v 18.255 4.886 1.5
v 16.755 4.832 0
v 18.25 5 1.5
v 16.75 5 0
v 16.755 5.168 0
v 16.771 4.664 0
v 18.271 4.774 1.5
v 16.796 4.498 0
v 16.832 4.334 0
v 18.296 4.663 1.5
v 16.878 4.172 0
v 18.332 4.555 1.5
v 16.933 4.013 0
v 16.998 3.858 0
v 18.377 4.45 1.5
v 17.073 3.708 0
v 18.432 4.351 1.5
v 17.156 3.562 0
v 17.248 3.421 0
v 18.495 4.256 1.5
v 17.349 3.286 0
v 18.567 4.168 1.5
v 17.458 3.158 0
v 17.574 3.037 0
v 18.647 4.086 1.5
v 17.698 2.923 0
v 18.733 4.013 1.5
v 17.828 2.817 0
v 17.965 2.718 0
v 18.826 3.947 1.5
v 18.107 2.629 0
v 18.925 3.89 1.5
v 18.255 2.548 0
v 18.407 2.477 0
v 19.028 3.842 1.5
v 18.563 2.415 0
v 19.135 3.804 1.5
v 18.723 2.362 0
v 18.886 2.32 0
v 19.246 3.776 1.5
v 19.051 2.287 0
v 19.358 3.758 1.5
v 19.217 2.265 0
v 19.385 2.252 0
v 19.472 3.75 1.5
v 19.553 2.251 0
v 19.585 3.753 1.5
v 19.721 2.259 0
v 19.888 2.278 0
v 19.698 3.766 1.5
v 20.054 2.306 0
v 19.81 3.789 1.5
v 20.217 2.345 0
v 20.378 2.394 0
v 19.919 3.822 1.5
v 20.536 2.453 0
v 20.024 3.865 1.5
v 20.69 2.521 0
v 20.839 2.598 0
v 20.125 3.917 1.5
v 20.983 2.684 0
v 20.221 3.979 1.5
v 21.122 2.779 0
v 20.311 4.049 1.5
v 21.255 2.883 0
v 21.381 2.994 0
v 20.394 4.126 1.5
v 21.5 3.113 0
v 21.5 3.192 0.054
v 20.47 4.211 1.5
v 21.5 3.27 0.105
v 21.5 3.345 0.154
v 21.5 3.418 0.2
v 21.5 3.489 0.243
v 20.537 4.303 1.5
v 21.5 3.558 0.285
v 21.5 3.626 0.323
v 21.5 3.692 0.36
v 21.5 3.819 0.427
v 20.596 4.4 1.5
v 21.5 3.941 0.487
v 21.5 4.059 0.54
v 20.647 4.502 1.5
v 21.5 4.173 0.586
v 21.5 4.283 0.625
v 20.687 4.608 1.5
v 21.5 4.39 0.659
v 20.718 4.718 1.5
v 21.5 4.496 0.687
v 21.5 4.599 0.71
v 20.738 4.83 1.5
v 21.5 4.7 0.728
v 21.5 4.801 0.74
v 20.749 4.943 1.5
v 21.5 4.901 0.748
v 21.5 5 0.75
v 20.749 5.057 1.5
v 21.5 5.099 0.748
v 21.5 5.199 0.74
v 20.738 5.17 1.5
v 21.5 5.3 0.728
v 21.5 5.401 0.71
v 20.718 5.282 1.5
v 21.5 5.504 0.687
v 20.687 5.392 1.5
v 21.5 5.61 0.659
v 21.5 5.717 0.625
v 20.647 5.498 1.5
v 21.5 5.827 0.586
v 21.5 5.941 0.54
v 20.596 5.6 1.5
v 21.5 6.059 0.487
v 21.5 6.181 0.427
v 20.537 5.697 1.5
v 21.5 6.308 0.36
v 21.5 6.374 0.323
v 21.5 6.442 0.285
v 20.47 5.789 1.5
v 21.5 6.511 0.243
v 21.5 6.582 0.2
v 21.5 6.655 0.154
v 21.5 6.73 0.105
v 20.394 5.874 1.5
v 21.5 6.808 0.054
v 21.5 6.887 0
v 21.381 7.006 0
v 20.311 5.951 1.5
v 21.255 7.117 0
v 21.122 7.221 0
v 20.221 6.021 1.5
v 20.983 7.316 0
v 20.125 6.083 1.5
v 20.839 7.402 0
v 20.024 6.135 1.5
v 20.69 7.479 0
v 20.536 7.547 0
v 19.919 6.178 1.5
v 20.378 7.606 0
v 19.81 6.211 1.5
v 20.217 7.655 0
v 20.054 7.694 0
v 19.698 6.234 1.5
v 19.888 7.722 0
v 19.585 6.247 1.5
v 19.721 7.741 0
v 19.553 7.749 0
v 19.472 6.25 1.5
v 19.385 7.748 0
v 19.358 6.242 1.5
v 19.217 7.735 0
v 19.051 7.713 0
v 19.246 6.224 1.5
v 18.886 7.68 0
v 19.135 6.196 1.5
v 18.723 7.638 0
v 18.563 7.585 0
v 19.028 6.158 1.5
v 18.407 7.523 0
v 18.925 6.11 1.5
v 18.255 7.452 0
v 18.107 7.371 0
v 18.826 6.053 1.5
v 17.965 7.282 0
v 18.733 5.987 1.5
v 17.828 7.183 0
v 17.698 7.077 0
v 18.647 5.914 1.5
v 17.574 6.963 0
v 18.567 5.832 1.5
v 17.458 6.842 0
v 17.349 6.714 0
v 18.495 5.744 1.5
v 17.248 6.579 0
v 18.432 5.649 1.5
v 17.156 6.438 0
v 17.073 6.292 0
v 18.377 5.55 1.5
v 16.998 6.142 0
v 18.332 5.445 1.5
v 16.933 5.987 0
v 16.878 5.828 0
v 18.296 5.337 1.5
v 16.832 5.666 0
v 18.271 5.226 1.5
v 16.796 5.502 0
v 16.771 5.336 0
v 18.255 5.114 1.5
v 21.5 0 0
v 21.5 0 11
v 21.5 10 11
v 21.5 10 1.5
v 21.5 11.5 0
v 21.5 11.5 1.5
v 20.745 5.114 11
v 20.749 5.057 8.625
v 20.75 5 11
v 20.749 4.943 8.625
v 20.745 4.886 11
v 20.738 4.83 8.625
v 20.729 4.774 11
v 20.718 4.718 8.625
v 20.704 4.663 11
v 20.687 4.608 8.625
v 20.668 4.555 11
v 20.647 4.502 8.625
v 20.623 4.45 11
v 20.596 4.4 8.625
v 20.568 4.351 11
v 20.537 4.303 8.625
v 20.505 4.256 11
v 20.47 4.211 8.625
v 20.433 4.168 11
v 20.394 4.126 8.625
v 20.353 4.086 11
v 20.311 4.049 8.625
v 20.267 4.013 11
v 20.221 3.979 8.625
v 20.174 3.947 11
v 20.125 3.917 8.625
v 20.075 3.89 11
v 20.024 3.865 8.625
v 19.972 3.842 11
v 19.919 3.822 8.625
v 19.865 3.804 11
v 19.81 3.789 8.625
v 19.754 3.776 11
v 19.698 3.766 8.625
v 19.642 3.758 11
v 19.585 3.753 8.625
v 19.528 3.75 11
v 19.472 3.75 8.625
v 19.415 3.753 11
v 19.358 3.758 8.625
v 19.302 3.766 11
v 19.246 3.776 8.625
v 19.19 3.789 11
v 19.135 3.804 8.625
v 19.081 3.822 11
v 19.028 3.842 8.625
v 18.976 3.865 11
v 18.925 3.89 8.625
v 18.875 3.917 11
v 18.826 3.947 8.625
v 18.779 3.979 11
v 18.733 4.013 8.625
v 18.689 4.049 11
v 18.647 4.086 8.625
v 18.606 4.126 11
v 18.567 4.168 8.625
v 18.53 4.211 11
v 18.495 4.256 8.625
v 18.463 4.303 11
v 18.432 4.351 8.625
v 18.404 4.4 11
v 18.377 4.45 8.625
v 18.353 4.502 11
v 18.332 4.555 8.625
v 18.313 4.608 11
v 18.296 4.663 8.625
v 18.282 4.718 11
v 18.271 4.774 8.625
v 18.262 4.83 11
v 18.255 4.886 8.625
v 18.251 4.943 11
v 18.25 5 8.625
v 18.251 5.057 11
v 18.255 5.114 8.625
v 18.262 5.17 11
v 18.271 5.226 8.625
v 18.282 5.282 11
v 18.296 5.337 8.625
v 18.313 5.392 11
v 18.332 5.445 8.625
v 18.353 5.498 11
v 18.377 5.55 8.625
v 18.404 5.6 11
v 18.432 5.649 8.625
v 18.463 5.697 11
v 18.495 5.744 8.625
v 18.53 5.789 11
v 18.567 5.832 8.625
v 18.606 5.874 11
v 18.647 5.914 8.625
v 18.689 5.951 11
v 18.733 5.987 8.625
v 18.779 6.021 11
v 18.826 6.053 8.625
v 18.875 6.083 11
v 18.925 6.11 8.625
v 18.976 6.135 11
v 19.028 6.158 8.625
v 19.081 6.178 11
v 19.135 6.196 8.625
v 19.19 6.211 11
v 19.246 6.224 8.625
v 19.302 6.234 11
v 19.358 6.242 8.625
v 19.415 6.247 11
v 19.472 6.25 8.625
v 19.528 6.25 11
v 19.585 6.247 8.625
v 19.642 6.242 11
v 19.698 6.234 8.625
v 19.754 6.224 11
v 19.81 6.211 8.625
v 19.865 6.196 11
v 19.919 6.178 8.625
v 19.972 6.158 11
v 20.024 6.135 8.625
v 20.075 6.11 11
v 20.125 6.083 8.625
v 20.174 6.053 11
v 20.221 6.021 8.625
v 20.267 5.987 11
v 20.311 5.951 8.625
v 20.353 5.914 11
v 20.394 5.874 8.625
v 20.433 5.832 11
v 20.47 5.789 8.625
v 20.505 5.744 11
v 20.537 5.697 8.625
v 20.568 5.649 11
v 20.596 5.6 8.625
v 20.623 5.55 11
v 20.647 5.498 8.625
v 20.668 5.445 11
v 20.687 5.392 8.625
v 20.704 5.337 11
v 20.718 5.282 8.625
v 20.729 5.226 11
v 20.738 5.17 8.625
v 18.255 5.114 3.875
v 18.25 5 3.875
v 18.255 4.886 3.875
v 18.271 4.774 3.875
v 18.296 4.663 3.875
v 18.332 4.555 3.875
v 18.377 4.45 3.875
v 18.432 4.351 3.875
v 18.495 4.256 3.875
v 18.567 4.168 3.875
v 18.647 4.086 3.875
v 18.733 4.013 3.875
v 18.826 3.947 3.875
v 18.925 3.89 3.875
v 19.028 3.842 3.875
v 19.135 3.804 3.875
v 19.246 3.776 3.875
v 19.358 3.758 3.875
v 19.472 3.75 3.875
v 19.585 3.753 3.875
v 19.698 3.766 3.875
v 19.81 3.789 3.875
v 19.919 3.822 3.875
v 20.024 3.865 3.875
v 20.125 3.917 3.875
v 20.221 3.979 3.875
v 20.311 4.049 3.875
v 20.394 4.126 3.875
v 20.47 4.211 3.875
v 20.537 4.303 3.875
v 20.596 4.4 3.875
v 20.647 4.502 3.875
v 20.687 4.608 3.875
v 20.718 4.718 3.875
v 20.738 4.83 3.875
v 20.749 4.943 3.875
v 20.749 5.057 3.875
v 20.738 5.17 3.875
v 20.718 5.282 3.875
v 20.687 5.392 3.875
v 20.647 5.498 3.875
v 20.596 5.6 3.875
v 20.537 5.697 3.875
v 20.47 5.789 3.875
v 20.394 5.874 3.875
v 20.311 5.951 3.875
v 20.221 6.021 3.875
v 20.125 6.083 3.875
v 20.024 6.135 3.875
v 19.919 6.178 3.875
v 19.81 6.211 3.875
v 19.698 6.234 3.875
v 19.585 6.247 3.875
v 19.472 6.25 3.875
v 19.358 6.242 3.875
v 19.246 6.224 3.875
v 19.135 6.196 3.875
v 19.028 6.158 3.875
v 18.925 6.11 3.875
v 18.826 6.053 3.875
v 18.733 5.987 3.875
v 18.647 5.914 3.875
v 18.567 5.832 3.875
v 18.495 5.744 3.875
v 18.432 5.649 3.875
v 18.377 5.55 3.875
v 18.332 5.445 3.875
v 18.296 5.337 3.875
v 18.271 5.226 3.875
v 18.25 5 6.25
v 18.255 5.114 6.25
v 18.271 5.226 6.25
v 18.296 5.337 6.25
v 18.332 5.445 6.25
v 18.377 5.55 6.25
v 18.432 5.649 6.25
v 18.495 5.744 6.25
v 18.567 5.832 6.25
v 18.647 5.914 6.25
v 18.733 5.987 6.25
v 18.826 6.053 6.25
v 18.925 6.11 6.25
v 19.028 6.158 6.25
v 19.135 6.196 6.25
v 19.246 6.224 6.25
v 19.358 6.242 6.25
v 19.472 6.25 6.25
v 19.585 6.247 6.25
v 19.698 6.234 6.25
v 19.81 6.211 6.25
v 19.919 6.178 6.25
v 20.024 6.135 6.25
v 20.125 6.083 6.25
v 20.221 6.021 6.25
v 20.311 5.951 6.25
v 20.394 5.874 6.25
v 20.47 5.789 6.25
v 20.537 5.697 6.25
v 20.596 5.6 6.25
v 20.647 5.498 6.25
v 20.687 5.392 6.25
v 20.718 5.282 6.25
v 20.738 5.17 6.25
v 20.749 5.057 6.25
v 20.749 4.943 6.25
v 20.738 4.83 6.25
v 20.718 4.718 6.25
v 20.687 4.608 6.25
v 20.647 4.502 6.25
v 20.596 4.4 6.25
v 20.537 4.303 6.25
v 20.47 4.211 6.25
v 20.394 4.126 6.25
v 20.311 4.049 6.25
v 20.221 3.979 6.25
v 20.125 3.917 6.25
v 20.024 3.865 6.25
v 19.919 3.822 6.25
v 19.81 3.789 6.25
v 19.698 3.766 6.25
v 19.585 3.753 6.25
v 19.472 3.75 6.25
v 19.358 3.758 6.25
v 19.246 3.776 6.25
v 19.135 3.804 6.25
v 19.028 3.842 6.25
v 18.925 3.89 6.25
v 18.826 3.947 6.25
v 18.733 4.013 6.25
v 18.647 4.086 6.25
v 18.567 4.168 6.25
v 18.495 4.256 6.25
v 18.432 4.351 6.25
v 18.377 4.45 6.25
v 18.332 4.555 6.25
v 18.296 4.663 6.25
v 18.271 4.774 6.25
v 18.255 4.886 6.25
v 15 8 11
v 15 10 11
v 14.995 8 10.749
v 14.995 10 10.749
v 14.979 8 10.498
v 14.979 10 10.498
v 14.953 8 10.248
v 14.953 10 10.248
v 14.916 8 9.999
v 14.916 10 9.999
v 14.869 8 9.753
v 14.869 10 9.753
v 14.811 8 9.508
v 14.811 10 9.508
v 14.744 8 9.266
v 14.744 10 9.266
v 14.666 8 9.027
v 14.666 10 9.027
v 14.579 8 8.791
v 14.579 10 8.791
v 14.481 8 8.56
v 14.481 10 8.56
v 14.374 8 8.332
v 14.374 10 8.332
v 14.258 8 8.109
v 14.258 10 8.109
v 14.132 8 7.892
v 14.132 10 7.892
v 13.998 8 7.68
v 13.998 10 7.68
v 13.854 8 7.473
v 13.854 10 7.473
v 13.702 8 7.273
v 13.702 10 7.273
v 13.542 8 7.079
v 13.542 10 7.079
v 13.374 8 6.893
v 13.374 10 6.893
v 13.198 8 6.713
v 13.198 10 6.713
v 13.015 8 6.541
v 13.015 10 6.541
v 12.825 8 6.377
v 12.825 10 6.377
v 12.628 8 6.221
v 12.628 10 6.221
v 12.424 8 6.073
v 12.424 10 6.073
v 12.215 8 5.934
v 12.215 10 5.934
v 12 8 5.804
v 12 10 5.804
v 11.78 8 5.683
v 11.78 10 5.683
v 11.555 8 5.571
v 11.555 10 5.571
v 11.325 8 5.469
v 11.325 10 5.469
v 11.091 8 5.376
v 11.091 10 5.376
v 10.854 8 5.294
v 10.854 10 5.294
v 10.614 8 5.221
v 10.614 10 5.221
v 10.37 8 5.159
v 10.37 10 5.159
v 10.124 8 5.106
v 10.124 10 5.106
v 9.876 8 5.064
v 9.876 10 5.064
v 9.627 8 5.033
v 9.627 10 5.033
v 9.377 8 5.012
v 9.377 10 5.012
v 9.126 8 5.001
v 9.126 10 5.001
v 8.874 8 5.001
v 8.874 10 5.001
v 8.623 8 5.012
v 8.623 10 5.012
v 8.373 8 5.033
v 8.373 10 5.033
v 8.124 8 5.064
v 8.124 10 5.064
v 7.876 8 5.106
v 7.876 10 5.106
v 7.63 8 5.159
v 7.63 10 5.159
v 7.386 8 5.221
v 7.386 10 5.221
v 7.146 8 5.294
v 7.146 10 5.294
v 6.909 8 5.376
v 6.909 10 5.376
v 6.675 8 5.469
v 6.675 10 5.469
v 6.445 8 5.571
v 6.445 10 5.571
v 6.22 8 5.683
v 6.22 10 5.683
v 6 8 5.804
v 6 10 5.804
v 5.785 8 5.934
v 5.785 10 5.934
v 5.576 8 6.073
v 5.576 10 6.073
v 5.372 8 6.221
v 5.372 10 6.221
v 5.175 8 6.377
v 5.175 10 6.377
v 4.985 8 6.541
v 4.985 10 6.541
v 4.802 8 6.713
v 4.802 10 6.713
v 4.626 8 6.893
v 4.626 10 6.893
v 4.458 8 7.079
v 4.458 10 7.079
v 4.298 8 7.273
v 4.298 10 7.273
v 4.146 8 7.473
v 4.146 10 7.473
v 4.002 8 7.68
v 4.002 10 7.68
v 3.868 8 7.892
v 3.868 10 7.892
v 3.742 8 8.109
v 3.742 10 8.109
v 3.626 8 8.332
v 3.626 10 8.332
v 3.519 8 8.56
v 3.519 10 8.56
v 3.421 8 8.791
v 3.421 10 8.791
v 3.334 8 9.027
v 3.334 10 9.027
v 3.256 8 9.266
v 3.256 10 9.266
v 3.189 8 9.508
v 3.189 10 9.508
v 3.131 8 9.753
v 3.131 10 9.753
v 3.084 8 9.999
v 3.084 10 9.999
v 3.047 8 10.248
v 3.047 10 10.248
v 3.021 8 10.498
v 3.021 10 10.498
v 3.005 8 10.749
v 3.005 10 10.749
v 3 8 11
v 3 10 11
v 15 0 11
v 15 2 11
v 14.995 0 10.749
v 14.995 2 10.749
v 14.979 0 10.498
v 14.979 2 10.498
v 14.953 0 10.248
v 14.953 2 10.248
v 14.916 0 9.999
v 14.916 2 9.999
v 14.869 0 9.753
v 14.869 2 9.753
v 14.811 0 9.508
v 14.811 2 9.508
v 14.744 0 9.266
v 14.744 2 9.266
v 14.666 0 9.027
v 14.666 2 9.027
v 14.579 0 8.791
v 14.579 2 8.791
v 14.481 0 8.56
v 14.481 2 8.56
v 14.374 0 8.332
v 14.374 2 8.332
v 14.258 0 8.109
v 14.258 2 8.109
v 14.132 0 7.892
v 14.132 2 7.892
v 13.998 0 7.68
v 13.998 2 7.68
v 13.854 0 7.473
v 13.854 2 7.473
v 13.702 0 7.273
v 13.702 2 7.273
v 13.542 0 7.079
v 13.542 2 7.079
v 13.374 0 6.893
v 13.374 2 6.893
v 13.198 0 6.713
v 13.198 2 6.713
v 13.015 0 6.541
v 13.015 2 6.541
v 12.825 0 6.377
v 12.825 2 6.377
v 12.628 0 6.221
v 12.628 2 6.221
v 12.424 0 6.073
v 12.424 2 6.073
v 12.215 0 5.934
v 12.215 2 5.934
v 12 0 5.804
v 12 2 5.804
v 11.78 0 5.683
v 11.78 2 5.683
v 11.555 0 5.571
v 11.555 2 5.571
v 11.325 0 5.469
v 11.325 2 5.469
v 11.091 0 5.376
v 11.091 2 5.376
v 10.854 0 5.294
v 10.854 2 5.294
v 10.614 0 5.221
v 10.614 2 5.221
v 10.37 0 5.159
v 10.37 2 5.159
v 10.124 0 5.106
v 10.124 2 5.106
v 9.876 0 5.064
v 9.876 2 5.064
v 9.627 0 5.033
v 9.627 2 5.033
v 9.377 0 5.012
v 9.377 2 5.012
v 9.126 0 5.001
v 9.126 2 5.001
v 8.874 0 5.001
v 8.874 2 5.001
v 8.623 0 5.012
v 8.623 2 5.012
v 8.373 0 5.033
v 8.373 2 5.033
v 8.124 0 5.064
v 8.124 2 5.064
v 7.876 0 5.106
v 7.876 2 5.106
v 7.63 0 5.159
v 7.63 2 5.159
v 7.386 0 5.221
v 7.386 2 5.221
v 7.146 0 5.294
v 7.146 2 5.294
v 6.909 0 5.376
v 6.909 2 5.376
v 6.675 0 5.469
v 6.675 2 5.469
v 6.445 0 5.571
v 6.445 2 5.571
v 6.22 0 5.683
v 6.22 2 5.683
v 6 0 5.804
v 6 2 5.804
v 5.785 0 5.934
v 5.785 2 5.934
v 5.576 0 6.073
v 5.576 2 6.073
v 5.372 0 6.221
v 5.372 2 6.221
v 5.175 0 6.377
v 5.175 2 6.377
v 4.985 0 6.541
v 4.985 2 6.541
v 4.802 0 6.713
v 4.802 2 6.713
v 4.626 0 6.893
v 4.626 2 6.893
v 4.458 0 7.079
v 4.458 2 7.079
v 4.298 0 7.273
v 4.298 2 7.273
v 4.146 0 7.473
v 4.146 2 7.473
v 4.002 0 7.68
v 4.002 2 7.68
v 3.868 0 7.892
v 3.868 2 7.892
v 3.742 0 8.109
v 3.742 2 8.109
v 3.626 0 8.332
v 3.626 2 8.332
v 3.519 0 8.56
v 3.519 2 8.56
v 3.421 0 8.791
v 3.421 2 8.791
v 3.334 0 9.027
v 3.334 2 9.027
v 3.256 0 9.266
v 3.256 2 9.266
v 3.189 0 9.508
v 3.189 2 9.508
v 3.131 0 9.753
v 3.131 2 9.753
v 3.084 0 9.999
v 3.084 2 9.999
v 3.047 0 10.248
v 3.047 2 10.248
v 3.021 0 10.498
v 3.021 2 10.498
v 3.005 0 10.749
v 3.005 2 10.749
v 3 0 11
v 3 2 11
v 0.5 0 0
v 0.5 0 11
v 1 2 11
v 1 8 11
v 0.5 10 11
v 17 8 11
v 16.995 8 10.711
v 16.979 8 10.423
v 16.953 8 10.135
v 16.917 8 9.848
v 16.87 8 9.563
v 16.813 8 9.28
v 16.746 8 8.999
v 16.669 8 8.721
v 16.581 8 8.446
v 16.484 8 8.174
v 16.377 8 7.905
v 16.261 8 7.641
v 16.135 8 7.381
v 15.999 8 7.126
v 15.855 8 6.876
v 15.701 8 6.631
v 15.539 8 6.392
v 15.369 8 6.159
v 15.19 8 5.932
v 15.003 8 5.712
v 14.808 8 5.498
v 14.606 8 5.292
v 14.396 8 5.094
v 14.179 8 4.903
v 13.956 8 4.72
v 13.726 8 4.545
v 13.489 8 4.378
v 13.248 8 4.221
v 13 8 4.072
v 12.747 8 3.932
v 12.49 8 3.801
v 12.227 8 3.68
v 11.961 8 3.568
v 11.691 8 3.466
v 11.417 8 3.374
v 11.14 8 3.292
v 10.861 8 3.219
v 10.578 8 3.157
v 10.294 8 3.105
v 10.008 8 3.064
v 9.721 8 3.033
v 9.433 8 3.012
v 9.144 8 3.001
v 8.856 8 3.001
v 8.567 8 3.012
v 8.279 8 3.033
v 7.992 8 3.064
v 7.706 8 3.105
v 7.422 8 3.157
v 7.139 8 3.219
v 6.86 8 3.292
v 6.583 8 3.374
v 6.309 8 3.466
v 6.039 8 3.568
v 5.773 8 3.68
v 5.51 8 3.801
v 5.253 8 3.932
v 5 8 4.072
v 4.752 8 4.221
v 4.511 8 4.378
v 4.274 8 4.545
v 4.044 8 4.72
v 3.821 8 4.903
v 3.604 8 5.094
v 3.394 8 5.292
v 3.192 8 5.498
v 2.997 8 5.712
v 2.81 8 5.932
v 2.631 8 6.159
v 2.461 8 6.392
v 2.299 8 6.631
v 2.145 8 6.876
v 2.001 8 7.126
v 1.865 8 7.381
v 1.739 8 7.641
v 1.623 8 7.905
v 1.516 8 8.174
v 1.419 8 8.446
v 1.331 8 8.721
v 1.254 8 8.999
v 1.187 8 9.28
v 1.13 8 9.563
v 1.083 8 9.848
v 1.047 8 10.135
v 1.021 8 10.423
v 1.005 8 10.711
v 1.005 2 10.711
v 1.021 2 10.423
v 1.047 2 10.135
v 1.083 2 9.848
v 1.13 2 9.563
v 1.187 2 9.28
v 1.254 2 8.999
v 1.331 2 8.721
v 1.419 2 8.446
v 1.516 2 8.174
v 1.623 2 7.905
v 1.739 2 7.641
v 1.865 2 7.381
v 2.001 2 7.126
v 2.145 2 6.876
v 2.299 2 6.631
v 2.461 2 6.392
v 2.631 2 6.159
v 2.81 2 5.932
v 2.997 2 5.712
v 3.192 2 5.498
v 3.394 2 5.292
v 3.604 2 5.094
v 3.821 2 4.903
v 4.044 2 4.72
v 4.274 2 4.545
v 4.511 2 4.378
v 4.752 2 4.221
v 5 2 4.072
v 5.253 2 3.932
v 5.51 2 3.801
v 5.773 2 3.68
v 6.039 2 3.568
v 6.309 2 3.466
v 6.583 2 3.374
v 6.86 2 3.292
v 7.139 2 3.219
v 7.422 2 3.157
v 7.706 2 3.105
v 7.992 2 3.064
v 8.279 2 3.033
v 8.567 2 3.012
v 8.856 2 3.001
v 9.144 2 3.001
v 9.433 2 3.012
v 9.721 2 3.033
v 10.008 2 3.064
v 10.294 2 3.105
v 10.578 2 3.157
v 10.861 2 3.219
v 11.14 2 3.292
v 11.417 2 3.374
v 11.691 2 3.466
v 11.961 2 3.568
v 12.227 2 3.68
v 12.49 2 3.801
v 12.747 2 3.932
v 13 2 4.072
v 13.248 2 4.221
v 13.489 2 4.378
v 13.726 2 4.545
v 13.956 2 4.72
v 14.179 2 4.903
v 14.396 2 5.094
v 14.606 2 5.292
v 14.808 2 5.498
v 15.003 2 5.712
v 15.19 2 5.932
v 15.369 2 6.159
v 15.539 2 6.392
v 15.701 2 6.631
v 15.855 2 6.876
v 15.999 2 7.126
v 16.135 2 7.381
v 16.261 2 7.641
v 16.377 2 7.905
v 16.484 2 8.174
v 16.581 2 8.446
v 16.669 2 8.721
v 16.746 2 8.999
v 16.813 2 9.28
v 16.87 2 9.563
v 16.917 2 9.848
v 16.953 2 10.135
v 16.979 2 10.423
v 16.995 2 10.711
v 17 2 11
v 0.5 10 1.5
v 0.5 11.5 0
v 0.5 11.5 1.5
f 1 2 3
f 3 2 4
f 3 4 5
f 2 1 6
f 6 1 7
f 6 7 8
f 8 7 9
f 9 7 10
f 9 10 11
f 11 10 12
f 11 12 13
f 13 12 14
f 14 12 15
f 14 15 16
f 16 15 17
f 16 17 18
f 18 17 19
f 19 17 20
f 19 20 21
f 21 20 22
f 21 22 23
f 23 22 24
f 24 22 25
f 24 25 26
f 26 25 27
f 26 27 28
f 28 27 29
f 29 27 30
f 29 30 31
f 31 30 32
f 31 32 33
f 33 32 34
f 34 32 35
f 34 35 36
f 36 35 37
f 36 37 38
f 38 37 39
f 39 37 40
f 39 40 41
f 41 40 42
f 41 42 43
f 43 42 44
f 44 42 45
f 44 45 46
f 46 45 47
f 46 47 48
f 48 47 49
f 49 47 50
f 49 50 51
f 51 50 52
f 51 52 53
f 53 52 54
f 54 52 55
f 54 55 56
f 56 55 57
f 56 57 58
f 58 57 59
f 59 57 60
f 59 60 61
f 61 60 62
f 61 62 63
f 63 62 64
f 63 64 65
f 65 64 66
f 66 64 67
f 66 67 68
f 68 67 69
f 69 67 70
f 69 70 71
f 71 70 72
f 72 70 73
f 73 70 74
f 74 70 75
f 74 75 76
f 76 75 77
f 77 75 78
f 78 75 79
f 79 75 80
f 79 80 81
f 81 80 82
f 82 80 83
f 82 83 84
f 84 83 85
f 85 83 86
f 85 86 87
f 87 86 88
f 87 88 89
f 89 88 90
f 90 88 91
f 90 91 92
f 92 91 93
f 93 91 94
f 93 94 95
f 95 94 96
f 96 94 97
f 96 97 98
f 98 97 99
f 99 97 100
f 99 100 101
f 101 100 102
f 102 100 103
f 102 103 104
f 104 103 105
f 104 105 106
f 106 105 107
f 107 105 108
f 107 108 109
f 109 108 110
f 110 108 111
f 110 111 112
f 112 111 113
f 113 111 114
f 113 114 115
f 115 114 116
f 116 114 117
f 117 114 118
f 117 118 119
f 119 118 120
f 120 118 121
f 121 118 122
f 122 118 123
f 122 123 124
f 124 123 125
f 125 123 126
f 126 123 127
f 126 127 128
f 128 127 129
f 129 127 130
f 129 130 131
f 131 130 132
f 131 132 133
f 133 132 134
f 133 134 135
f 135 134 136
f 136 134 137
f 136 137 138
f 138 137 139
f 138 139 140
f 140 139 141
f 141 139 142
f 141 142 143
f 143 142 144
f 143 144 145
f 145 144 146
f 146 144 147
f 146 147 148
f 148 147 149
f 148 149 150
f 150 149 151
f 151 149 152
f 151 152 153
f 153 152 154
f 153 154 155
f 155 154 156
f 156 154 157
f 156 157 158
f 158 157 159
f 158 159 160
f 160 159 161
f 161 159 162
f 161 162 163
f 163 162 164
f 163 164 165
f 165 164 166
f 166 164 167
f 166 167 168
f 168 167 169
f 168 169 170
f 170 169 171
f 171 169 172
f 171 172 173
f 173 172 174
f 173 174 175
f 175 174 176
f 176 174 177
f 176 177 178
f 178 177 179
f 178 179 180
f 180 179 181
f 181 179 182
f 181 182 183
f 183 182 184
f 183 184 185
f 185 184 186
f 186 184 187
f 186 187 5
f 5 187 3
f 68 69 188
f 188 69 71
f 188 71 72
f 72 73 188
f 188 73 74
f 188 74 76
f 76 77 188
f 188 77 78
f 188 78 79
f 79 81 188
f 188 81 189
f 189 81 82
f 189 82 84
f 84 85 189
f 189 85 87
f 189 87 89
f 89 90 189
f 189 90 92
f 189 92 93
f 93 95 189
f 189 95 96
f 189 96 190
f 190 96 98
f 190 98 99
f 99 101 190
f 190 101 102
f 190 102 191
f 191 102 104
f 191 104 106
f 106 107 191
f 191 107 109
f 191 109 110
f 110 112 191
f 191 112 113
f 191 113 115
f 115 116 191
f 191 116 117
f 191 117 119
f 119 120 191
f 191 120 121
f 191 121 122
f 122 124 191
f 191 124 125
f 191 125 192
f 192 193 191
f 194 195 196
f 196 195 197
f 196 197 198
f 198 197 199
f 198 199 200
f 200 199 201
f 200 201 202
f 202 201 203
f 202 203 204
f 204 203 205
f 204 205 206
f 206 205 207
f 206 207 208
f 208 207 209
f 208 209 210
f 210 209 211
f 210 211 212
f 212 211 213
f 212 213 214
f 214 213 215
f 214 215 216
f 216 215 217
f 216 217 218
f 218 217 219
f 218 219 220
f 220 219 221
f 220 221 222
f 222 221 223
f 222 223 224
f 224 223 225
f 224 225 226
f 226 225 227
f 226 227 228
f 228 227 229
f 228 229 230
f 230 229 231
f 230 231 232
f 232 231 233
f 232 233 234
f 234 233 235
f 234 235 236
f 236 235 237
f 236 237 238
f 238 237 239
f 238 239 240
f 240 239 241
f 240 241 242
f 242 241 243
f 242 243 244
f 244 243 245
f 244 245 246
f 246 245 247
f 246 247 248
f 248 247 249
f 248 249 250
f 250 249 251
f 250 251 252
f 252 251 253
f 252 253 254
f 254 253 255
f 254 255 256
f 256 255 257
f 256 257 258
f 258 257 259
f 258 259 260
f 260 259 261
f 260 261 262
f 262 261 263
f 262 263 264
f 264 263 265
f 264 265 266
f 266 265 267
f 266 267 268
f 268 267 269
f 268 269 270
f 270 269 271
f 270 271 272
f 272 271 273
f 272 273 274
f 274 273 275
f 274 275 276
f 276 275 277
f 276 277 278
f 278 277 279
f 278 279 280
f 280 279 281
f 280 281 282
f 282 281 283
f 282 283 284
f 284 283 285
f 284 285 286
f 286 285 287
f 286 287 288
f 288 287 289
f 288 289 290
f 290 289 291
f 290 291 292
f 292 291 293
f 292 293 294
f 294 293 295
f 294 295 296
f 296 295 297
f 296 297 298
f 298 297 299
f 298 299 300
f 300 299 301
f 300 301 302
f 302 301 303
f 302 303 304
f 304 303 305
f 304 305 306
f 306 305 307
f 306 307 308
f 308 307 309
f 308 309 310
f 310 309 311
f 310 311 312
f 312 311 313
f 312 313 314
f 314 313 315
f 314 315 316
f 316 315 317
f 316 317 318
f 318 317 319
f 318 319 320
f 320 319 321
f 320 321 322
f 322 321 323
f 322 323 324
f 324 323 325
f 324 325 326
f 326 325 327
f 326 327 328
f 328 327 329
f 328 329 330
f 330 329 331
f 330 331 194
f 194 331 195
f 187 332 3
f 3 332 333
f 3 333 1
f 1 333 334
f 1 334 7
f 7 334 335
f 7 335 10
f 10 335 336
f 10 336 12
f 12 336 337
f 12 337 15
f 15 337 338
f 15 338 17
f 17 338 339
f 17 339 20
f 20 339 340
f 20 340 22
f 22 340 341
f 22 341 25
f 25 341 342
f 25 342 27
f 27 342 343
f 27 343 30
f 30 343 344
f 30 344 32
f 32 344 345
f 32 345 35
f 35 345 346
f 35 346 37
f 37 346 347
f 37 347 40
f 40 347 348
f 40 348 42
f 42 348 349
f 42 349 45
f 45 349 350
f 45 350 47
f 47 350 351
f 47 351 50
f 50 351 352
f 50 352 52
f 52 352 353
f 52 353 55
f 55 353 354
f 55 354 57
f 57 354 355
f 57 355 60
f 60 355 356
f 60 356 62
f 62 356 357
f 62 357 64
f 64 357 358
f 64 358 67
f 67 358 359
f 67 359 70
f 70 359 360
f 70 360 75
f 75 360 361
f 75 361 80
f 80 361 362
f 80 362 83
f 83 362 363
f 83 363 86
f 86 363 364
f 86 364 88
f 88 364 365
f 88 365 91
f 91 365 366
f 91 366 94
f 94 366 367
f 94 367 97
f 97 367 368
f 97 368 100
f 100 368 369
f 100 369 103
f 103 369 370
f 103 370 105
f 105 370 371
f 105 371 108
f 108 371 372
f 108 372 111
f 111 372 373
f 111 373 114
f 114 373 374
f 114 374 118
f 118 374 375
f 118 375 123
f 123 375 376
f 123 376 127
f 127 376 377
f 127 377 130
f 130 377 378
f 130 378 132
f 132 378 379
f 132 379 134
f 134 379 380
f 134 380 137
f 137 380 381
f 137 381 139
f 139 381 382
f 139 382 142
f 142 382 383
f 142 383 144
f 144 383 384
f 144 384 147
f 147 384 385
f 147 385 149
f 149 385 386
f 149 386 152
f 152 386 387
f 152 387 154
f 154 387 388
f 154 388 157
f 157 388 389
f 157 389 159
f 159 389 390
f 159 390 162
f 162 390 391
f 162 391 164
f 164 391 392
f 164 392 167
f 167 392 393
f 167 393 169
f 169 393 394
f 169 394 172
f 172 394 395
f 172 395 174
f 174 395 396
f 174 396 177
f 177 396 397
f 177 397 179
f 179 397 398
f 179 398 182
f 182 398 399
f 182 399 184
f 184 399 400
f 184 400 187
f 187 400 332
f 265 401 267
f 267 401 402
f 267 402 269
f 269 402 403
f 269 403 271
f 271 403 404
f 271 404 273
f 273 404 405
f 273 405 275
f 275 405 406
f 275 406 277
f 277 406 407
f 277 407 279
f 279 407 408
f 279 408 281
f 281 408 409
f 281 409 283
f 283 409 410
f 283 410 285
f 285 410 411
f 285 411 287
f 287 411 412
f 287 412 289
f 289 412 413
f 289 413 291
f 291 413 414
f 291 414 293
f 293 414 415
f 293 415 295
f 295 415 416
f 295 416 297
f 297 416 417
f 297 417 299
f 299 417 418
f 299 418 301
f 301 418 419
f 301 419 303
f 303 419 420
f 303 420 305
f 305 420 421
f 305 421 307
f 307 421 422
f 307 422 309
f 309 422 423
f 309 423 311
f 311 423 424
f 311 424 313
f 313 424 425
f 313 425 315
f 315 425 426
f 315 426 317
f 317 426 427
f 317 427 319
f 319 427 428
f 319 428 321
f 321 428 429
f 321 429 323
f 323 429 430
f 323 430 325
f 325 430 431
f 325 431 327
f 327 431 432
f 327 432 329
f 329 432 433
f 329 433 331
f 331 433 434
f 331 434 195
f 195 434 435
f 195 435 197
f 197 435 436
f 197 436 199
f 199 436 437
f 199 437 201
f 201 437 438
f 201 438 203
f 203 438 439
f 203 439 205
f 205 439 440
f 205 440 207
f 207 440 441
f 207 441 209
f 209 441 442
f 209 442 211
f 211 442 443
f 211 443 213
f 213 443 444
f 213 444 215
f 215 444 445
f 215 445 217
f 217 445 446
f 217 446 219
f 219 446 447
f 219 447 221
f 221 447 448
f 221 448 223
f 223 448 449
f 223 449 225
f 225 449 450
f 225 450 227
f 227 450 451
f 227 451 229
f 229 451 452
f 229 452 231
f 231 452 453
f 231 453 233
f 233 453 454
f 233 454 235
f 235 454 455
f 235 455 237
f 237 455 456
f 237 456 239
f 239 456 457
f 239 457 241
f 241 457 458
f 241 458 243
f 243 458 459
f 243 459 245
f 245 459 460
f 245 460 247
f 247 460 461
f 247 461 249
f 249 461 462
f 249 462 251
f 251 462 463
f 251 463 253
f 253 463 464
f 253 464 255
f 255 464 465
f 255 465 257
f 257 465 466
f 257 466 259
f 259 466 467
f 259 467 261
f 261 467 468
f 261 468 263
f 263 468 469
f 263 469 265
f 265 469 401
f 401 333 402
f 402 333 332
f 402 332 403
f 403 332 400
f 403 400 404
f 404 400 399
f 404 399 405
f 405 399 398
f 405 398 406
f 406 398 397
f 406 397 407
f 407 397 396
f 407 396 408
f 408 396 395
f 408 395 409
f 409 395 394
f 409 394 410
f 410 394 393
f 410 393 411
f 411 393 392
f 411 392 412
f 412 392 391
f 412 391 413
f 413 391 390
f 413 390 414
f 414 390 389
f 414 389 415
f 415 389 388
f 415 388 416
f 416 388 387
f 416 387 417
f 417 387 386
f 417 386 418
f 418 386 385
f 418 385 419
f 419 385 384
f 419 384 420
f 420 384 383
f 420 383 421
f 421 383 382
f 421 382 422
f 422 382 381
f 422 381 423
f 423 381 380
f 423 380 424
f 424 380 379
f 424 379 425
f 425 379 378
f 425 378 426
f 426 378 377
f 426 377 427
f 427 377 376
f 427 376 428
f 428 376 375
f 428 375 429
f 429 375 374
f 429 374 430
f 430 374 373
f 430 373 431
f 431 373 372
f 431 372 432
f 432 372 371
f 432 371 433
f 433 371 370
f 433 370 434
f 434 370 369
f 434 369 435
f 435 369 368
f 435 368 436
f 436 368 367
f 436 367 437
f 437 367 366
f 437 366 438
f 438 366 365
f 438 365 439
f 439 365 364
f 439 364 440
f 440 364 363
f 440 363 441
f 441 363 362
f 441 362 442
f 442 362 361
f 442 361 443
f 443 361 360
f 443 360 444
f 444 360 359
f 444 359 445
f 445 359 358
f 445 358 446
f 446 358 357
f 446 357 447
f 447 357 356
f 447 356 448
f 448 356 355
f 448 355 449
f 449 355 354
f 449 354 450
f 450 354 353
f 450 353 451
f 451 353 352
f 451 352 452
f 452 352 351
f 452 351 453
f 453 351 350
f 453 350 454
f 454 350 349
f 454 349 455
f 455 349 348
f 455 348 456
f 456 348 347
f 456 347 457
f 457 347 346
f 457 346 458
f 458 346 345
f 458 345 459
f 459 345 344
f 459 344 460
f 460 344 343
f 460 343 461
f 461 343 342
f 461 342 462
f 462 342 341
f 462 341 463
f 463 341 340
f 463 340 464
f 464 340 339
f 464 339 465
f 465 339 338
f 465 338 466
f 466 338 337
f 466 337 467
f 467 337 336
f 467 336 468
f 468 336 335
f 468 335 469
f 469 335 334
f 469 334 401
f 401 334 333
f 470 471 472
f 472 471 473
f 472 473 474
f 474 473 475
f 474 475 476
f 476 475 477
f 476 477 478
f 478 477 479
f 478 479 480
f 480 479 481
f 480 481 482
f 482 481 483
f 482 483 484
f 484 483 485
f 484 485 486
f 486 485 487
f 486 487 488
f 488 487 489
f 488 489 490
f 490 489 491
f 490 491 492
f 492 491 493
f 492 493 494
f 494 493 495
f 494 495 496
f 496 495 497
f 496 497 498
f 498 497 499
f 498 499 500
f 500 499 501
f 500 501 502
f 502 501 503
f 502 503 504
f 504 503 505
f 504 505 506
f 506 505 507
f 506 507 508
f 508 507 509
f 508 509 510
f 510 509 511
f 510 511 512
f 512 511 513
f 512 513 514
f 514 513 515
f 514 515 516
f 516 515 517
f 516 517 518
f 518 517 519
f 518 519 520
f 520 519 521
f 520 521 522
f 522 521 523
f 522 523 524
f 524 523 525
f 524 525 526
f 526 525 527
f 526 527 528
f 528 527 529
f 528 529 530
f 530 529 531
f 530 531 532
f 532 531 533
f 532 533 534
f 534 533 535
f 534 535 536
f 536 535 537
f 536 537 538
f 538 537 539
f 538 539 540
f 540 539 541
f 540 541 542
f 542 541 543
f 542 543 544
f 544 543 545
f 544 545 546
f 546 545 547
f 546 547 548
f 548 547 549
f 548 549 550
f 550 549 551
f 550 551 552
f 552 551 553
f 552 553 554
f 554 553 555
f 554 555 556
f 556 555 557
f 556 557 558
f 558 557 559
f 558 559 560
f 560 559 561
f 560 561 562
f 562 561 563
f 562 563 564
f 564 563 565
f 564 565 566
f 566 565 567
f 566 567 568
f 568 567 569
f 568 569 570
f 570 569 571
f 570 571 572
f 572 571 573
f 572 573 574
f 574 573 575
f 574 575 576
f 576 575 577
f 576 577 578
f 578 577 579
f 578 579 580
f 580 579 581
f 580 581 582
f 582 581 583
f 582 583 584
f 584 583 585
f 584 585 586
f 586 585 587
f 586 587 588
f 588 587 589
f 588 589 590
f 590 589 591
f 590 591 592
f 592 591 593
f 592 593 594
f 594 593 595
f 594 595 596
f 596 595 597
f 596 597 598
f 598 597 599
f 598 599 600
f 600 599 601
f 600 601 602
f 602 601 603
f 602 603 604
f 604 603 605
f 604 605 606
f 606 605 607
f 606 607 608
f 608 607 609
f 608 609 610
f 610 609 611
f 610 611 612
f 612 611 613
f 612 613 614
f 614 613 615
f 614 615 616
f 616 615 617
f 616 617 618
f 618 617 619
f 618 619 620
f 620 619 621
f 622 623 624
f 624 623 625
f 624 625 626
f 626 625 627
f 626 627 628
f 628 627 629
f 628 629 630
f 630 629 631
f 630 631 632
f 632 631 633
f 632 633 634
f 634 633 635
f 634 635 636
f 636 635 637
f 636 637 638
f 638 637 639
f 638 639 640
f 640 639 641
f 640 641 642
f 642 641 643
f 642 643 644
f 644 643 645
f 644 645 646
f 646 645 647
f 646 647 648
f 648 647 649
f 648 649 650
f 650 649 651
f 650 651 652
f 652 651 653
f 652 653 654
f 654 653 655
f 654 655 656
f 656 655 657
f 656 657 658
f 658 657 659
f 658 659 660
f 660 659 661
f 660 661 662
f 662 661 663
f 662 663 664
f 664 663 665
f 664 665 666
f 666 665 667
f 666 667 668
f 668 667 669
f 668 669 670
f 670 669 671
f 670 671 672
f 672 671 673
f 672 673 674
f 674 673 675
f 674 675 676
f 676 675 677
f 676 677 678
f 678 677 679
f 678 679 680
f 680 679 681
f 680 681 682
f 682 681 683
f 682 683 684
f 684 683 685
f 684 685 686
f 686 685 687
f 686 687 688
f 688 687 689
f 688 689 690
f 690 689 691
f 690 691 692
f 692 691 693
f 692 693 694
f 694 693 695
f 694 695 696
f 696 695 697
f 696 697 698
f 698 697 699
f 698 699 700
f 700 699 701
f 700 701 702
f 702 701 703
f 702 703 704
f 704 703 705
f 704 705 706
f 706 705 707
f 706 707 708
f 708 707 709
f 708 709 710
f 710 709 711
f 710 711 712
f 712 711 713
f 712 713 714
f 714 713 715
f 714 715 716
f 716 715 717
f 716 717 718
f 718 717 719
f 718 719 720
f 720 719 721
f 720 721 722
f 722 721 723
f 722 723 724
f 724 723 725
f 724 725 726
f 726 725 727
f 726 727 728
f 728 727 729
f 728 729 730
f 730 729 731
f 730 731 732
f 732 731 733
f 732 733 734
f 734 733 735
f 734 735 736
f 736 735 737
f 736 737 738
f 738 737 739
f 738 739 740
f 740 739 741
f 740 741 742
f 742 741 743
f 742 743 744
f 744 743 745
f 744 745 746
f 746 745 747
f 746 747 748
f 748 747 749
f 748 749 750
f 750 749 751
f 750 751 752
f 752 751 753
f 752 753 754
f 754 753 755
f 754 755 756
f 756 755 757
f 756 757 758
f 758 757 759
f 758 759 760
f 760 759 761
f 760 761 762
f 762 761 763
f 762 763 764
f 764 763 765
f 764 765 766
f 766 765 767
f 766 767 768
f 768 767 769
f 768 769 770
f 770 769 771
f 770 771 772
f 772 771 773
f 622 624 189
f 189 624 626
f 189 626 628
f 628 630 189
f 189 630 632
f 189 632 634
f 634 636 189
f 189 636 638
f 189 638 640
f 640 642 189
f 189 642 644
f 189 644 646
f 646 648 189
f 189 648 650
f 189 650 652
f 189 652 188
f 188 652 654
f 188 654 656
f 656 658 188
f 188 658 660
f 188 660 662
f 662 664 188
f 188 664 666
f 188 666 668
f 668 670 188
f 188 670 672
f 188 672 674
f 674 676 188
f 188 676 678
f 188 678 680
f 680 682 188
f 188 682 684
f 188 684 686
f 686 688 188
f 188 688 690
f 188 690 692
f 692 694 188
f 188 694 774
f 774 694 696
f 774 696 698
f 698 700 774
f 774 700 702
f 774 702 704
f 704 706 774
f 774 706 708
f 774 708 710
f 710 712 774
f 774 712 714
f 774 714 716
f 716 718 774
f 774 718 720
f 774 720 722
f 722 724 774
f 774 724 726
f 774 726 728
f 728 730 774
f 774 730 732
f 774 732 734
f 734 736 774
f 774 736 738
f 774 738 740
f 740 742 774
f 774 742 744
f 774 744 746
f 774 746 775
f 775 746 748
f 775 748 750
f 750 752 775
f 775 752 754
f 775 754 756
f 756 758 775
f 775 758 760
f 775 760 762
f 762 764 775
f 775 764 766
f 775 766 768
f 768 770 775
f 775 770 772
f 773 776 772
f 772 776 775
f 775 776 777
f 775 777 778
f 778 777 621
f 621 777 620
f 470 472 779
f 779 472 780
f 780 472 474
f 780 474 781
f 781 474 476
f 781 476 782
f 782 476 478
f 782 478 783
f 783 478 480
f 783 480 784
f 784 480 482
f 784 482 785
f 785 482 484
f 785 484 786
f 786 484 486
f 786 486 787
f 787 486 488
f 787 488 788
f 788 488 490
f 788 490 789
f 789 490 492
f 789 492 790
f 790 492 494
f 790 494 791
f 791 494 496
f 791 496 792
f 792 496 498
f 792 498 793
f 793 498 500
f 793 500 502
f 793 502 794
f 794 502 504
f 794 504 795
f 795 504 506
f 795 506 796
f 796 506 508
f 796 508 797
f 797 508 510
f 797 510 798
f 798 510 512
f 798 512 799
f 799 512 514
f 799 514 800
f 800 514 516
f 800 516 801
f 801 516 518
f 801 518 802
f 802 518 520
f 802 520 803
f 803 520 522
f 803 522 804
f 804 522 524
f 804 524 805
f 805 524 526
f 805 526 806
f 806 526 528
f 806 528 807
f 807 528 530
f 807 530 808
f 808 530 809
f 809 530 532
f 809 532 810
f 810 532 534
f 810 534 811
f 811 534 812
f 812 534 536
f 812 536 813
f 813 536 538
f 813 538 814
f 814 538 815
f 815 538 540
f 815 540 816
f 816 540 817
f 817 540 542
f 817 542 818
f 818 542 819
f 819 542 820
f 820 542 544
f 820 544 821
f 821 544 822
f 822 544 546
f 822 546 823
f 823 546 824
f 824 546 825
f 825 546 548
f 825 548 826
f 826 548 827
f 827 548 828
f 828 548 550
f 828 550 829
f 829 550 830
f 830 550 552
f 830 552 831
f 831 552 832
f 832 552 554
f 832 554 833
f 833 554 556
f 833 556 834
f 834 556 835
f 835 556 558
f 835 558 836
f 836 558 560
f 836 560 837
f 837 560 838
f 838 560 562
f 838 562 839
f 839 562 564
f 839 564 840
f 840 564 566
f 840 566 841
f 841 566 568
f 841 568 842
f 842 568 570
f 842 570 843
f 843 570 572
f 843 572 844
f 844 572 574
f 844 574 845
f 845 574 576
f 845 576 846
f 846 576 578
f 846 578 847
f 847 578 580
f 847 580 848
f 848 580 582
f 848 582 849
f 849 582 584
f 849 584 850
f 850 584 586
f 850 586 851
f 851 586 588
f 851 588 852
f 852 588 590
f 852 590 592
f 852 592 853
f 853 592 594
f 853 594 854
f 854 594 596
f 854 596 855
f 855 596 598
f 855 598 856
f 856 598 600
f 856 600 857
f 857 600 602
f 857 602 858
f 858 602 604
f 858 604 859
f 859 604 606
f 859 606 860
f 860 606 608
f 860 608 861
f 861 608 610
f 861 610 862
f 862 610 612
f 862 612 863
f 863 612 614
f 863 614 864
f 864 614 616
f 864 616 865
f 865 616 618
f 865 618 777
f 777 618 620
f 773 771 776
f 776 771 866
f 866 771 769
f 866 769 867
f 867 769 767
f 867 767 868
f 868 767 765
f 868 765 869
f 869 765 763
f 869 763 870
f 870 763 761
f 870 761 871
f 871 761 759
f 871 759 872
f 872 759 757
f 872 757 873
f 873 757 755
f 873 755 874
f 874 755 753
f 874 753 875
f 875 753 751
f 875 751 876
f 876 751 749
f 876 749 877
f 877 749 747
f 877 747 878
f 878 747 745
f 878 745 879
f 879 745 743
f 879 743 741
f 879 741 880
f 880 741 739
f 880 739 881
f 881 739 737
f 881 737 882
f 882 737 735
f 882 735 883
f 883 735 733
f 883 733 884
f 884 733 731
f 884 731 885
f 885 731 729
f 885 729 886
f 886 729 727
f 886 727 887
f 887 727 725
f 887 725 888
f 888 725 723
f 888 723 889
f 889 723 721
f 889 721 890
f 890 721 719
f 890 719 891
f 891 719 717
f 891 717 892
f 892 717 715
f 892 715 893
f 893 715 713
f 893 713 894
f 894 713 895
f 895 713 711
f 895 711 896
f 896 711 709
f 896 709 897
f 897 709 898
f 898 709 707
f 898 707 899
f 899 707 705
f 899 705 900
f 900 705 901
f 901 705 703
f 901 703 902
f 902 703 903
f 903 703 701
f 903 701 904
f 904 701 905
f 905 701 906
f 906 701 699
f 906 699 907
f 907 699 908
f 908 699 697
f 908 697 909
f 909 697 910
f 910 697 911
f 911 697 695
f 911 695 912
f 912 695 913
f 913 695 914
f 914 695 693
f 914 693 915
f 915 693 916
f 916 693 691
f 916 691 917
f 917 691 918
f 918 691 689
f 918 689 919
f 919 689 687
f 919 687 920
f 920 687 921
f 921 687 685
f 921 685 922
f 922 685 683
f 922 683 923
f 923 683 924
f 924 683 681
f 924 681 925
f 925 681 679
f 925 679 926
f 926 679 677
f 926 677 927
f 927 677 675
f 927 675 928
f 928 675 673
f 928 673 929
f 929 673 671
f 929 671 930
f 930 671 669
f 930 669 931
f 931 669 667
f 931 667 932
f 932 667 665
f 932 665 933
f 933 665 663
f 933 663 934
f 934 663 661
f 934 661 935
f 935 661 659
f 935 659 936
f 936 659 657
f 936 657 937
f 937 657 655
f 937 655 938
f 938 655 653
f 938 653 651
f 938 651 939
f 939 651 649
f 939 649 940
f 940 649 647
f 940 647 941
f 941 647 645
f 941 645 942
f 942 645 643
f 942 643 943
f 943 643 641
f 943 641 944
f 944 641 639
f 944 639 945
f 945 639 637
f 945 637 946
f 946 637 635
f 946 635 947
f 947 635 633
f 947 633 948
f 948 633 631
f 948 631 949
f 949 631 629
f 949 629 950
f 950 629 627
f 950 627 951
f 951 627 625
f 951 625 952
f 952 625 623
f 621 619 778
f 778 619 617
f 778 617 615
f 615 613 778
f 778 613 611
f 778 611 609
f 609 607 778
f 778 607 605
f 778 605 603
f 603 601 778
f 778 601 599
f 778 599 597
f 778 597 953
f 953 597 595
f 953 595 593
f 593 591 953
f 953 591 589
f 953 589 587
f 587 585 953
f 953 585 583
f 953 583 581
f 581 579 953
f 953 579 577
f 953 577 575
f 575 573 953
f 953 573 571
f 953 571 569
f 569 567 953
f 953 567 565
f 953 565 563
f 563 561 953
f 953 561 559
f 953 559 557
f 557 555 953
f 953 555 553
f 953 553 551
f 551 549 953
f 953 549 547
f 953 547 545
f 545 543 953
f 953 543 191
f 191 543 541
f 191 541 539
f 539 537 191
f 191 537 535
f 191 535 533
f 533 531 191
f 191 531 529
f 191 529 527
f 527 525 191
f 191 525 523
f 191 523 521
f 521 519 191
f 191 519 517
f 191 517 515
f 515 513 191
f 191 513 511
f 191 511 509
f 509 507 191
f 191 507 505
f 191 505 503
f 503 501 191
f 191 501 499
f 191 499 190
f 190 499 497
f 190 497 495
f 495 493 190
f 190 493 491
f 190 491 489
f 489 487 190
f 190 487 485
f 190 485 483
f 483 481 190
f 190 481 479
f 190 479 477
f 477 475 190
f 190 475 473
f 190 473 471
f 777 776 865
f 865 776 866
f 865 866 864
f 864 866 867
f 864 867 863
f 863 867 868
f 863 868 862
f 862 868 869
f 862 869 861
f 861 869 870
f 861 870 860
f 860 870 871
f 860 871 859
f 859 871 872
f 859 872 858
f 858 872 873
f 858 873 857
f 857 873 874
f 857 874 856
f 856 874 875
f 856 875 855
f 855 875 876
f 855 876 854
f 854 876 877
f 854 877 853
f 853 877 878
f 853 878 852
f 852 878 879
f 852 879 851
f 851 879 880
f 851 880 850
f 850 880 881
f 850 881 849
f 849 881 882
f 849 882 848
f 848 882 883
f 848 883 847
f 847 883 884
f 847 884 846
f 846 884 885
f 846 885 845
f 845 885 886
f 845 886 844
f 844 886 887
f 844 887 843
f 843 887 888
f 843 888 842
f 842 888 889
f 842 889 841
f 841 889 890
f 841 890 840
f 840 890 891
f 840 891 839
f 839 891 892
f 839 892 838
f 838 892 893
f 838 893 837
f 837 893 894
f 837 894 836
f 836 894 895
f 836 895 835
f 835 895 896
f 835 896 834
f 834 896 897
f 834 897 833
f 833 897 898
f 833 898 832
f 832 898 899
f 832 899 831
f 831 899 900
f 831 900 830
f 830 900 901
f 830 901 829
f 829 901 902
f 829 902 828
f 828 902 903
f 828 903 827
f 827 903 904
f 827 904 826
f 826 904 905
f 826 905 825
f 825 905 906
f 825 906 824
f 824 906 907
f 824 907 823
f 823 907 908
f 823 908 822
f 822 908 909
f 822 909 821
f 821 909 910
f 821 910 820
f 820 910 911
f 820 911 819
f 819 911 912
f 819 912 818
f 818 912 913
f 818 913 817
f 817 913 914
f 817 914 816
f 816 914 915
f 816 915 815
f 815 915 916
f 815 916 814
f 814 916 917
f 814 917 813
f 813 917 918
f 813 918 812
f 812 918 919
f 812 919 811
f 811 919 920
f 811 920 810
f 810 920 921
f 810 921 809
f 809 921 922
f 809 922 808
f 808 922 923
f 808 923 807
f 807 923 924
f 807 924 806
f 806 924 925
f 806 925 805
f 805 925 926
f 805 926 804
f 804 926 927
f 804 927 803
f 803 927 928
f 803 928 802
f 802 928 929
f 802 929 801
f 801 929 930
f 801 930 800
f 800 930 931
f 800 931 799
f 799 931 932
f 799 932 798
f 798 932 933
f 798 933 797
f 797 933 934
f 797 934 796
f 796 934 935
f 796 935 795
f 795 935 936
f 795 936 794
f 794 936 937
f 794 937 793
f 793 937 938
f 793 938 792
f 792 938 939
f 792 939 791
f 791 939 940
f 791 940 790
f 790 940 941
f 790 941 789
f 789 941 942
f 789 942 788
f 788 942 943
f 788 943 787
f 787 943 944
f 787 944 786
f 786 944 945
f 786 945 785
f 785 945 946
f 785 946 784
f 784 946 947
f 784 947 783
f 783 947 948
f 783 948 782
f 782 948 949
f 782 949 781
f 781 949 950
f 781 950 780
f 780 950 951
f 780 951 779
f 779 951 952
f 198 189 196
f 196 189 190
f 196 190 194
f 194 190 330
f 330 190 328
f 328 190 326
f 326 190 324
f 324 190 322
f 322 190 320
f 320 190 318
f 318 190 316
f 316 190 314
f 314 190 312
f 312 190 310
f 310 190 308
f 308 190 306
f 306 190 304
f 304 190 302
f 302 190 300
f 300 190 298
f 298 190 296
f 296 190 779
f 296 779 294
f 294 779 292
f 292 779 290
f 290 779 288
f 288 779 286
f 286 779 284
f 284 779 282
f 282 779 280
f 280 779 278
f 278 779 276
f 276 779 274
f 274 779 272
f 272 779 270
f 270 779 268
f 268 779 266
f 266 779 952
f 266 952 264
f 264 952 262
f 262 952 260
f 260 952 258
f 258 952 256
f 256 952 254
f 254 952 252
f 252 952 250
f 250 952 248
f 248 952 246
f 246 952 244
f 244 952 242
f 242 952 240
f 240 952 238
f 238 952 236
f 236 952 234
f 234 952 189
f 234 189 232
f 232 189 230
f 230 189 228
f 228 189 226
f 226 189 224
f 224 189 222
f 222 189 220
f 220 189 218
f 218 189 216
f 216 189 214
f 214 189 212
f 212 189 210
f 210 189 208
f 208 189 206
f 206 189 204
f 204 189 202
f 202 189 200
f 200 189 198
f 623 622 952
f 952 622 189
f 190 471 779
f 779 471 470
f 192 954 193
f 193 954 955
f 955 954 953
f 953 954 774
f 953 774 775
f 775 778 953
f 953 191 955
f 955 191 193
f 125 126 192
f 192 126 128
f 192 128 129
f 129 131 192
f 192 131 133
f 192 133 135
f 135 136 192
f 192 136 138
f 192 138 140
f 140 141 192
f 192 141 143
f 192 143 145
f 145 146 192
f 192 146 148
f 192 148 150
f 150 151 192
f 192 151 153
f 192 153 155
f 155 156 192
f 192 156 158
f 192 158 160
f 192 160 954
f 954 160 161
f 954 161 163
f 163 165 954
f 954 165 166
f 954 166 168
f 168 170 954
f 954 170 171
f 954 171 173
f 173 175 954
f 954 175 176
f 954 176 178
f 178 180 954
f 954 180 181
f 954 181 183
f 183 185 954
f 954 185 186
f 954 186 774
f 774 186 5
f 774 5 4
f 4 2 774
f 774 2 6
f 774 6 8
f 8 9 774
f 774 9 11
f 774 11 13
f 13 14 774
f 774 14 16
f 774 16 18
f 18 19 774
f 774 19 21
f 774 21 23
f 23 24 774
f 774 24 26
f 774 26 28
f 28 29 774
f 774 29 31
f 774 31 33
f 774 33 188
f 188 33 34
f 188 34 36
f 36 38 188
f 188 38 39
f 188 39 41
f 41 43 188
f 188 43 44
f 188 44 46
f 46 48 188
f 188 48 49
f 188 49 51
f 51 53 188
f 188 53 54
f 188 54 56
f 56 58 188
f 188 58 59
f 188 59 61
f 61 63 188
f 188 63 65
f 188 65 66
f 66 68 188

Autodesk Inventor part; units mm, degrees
ref_plane "YZ Plane" through (0, 0, 0) normal (1, 0, 0) x (0, 1, 0)
ref_plane "XZ Plane" through (0, 0, 0) normal (0, 1, 0) x (-1, 0, 0)
ref_plane "XY Plane" through (0, 0, 0) normal (0, 0, 1) x (1, 0, 0)
sketch "Sketch1" plane through (0, 0, 0) normal (0, 0, 1) x (1, 0, 0)
  line L0 (0, 0) -> (22, 0)
  line L1 (22, 0) -> (22, 12)
  line L2 (22, 12) -> (0, 12)
  line L3 (0, 12) -> (0, 0)
  dimension "d0" = 22
  dimension "d1" = 12
extrude "Extrusion1" add sketch "Sketch1" along normal blind 1.5
sketch "Sketch2" plane through (0, 0, 1.5) normal (0, 0, 1) x (1, 0, 0)
  line L0 (22, 0) -> (22, 12) projected
  line L1 (0, 12) -> (0, 0) projected
  line L2 (22, 8) -> (0, 8)
  line L3 (0, 8) -> (0, 2)
  line L4 (0, 2) -> (22, 2)
  line L5 (22, 2) -> (22, 8)
  line L6 (0, 0) -> (22, 0) projected
  point P0 (0, 8)
  dimension "d4" = 2
  dimension "d5" = 6
extrude "Extrusion2" add sketch "Sketch2" along normal blind 9.5 contours L4 L1 L2 L0
sketch "Sketch3" plane through (0, 8, 1.5) normal (0, 1, 0) x (1, 0, 0)
  line L0 (0, -9.5) -> (22, -9.5) projected
  circle A0 centre (9, -9.5) radius 8
  line L1 (0, 0) -> (0, -9.5) projected
  point P0 (0, 1.5)
  point P1 (17, -9.5)
  point P2 (1, -9.5)
  dimension "d8" = 16
  dimension "d9" = 1
extrude "Extrusion3" cut sketch "Sketch3" against normal through all contours A0 L0 picked at (10.996, -7.7317)
sketch "Sketch4" plane through (0, 0, 1.5) normal (0, 0, 1) x (1, 0, 0)
  line L0 (0, 0) -> (22, 0) projected
  line L1 (22, 2) -> (0, 2) projected
  line L2 (0, 0) -> (22, 0)
  line L3 (22, 0) -> (22, 2)
  line L4 (22, 2) -> (0, 2)
  line L5 (0, 2) -> (0, 0)
  line L6 (22, 0) -> (22, 12) projected
  line L7 (0, 12) -> (0, 0) projected
  line L8 (22, 8) -> (0, 8)
  line L9 (0, 8) -> (0, 10)
  line L10 (0, 10) -> (22, 10)
  line L11 (22, 10) -> (22, 8)
extrude "Extrusion4" add sketch "Sketch4" along normal up to surface (9.5 mm away) contours L5 L1 L3 L0 | L7 L10 L6 L8
sketch "Sketch5" plane through (0, 0, 0) normal (0, -1, 0) x (1, 0, 0)
  arc A0 (1, 11) -> (17, 11) centre (9, 11) ccw projected
  circle A1 centre (9, 11) radius 6
  point P0 (0, 0)
extrude "Extrusion5" cut sketch "Sketch5" against normal through all
sketch "Sketch6" plane through (0, 0, 11) normal (0, 0, 1) x (1, 0, 0)
  circle A0 centre (19.5, 5) radius 1.25
  line L0 (22, 10) -> (22, 0) projected
  line L1 (22, 0) -> (15, 0) projected
  point P0 (0, 0)
  dimension "d16" = 2.5
  dimension "d17" = 2.5
  dimension "d18" = 5
extrude "Extrusion6" cut sketch "Sketch6" against normal through all
thicken "Thicken1" operation add thickness 0.5 both sides no extend neighbours yes toward (1, 0, 0) faces at (0, 3.3333, 4.1667) (14.6667, 12, 1) (22, 3.3333, 4.1667)
chamfer "Chamfer1" distance 1.5 angle 45 1 edges at (18.25, 5, 0)
properties part number "bearingholder"
